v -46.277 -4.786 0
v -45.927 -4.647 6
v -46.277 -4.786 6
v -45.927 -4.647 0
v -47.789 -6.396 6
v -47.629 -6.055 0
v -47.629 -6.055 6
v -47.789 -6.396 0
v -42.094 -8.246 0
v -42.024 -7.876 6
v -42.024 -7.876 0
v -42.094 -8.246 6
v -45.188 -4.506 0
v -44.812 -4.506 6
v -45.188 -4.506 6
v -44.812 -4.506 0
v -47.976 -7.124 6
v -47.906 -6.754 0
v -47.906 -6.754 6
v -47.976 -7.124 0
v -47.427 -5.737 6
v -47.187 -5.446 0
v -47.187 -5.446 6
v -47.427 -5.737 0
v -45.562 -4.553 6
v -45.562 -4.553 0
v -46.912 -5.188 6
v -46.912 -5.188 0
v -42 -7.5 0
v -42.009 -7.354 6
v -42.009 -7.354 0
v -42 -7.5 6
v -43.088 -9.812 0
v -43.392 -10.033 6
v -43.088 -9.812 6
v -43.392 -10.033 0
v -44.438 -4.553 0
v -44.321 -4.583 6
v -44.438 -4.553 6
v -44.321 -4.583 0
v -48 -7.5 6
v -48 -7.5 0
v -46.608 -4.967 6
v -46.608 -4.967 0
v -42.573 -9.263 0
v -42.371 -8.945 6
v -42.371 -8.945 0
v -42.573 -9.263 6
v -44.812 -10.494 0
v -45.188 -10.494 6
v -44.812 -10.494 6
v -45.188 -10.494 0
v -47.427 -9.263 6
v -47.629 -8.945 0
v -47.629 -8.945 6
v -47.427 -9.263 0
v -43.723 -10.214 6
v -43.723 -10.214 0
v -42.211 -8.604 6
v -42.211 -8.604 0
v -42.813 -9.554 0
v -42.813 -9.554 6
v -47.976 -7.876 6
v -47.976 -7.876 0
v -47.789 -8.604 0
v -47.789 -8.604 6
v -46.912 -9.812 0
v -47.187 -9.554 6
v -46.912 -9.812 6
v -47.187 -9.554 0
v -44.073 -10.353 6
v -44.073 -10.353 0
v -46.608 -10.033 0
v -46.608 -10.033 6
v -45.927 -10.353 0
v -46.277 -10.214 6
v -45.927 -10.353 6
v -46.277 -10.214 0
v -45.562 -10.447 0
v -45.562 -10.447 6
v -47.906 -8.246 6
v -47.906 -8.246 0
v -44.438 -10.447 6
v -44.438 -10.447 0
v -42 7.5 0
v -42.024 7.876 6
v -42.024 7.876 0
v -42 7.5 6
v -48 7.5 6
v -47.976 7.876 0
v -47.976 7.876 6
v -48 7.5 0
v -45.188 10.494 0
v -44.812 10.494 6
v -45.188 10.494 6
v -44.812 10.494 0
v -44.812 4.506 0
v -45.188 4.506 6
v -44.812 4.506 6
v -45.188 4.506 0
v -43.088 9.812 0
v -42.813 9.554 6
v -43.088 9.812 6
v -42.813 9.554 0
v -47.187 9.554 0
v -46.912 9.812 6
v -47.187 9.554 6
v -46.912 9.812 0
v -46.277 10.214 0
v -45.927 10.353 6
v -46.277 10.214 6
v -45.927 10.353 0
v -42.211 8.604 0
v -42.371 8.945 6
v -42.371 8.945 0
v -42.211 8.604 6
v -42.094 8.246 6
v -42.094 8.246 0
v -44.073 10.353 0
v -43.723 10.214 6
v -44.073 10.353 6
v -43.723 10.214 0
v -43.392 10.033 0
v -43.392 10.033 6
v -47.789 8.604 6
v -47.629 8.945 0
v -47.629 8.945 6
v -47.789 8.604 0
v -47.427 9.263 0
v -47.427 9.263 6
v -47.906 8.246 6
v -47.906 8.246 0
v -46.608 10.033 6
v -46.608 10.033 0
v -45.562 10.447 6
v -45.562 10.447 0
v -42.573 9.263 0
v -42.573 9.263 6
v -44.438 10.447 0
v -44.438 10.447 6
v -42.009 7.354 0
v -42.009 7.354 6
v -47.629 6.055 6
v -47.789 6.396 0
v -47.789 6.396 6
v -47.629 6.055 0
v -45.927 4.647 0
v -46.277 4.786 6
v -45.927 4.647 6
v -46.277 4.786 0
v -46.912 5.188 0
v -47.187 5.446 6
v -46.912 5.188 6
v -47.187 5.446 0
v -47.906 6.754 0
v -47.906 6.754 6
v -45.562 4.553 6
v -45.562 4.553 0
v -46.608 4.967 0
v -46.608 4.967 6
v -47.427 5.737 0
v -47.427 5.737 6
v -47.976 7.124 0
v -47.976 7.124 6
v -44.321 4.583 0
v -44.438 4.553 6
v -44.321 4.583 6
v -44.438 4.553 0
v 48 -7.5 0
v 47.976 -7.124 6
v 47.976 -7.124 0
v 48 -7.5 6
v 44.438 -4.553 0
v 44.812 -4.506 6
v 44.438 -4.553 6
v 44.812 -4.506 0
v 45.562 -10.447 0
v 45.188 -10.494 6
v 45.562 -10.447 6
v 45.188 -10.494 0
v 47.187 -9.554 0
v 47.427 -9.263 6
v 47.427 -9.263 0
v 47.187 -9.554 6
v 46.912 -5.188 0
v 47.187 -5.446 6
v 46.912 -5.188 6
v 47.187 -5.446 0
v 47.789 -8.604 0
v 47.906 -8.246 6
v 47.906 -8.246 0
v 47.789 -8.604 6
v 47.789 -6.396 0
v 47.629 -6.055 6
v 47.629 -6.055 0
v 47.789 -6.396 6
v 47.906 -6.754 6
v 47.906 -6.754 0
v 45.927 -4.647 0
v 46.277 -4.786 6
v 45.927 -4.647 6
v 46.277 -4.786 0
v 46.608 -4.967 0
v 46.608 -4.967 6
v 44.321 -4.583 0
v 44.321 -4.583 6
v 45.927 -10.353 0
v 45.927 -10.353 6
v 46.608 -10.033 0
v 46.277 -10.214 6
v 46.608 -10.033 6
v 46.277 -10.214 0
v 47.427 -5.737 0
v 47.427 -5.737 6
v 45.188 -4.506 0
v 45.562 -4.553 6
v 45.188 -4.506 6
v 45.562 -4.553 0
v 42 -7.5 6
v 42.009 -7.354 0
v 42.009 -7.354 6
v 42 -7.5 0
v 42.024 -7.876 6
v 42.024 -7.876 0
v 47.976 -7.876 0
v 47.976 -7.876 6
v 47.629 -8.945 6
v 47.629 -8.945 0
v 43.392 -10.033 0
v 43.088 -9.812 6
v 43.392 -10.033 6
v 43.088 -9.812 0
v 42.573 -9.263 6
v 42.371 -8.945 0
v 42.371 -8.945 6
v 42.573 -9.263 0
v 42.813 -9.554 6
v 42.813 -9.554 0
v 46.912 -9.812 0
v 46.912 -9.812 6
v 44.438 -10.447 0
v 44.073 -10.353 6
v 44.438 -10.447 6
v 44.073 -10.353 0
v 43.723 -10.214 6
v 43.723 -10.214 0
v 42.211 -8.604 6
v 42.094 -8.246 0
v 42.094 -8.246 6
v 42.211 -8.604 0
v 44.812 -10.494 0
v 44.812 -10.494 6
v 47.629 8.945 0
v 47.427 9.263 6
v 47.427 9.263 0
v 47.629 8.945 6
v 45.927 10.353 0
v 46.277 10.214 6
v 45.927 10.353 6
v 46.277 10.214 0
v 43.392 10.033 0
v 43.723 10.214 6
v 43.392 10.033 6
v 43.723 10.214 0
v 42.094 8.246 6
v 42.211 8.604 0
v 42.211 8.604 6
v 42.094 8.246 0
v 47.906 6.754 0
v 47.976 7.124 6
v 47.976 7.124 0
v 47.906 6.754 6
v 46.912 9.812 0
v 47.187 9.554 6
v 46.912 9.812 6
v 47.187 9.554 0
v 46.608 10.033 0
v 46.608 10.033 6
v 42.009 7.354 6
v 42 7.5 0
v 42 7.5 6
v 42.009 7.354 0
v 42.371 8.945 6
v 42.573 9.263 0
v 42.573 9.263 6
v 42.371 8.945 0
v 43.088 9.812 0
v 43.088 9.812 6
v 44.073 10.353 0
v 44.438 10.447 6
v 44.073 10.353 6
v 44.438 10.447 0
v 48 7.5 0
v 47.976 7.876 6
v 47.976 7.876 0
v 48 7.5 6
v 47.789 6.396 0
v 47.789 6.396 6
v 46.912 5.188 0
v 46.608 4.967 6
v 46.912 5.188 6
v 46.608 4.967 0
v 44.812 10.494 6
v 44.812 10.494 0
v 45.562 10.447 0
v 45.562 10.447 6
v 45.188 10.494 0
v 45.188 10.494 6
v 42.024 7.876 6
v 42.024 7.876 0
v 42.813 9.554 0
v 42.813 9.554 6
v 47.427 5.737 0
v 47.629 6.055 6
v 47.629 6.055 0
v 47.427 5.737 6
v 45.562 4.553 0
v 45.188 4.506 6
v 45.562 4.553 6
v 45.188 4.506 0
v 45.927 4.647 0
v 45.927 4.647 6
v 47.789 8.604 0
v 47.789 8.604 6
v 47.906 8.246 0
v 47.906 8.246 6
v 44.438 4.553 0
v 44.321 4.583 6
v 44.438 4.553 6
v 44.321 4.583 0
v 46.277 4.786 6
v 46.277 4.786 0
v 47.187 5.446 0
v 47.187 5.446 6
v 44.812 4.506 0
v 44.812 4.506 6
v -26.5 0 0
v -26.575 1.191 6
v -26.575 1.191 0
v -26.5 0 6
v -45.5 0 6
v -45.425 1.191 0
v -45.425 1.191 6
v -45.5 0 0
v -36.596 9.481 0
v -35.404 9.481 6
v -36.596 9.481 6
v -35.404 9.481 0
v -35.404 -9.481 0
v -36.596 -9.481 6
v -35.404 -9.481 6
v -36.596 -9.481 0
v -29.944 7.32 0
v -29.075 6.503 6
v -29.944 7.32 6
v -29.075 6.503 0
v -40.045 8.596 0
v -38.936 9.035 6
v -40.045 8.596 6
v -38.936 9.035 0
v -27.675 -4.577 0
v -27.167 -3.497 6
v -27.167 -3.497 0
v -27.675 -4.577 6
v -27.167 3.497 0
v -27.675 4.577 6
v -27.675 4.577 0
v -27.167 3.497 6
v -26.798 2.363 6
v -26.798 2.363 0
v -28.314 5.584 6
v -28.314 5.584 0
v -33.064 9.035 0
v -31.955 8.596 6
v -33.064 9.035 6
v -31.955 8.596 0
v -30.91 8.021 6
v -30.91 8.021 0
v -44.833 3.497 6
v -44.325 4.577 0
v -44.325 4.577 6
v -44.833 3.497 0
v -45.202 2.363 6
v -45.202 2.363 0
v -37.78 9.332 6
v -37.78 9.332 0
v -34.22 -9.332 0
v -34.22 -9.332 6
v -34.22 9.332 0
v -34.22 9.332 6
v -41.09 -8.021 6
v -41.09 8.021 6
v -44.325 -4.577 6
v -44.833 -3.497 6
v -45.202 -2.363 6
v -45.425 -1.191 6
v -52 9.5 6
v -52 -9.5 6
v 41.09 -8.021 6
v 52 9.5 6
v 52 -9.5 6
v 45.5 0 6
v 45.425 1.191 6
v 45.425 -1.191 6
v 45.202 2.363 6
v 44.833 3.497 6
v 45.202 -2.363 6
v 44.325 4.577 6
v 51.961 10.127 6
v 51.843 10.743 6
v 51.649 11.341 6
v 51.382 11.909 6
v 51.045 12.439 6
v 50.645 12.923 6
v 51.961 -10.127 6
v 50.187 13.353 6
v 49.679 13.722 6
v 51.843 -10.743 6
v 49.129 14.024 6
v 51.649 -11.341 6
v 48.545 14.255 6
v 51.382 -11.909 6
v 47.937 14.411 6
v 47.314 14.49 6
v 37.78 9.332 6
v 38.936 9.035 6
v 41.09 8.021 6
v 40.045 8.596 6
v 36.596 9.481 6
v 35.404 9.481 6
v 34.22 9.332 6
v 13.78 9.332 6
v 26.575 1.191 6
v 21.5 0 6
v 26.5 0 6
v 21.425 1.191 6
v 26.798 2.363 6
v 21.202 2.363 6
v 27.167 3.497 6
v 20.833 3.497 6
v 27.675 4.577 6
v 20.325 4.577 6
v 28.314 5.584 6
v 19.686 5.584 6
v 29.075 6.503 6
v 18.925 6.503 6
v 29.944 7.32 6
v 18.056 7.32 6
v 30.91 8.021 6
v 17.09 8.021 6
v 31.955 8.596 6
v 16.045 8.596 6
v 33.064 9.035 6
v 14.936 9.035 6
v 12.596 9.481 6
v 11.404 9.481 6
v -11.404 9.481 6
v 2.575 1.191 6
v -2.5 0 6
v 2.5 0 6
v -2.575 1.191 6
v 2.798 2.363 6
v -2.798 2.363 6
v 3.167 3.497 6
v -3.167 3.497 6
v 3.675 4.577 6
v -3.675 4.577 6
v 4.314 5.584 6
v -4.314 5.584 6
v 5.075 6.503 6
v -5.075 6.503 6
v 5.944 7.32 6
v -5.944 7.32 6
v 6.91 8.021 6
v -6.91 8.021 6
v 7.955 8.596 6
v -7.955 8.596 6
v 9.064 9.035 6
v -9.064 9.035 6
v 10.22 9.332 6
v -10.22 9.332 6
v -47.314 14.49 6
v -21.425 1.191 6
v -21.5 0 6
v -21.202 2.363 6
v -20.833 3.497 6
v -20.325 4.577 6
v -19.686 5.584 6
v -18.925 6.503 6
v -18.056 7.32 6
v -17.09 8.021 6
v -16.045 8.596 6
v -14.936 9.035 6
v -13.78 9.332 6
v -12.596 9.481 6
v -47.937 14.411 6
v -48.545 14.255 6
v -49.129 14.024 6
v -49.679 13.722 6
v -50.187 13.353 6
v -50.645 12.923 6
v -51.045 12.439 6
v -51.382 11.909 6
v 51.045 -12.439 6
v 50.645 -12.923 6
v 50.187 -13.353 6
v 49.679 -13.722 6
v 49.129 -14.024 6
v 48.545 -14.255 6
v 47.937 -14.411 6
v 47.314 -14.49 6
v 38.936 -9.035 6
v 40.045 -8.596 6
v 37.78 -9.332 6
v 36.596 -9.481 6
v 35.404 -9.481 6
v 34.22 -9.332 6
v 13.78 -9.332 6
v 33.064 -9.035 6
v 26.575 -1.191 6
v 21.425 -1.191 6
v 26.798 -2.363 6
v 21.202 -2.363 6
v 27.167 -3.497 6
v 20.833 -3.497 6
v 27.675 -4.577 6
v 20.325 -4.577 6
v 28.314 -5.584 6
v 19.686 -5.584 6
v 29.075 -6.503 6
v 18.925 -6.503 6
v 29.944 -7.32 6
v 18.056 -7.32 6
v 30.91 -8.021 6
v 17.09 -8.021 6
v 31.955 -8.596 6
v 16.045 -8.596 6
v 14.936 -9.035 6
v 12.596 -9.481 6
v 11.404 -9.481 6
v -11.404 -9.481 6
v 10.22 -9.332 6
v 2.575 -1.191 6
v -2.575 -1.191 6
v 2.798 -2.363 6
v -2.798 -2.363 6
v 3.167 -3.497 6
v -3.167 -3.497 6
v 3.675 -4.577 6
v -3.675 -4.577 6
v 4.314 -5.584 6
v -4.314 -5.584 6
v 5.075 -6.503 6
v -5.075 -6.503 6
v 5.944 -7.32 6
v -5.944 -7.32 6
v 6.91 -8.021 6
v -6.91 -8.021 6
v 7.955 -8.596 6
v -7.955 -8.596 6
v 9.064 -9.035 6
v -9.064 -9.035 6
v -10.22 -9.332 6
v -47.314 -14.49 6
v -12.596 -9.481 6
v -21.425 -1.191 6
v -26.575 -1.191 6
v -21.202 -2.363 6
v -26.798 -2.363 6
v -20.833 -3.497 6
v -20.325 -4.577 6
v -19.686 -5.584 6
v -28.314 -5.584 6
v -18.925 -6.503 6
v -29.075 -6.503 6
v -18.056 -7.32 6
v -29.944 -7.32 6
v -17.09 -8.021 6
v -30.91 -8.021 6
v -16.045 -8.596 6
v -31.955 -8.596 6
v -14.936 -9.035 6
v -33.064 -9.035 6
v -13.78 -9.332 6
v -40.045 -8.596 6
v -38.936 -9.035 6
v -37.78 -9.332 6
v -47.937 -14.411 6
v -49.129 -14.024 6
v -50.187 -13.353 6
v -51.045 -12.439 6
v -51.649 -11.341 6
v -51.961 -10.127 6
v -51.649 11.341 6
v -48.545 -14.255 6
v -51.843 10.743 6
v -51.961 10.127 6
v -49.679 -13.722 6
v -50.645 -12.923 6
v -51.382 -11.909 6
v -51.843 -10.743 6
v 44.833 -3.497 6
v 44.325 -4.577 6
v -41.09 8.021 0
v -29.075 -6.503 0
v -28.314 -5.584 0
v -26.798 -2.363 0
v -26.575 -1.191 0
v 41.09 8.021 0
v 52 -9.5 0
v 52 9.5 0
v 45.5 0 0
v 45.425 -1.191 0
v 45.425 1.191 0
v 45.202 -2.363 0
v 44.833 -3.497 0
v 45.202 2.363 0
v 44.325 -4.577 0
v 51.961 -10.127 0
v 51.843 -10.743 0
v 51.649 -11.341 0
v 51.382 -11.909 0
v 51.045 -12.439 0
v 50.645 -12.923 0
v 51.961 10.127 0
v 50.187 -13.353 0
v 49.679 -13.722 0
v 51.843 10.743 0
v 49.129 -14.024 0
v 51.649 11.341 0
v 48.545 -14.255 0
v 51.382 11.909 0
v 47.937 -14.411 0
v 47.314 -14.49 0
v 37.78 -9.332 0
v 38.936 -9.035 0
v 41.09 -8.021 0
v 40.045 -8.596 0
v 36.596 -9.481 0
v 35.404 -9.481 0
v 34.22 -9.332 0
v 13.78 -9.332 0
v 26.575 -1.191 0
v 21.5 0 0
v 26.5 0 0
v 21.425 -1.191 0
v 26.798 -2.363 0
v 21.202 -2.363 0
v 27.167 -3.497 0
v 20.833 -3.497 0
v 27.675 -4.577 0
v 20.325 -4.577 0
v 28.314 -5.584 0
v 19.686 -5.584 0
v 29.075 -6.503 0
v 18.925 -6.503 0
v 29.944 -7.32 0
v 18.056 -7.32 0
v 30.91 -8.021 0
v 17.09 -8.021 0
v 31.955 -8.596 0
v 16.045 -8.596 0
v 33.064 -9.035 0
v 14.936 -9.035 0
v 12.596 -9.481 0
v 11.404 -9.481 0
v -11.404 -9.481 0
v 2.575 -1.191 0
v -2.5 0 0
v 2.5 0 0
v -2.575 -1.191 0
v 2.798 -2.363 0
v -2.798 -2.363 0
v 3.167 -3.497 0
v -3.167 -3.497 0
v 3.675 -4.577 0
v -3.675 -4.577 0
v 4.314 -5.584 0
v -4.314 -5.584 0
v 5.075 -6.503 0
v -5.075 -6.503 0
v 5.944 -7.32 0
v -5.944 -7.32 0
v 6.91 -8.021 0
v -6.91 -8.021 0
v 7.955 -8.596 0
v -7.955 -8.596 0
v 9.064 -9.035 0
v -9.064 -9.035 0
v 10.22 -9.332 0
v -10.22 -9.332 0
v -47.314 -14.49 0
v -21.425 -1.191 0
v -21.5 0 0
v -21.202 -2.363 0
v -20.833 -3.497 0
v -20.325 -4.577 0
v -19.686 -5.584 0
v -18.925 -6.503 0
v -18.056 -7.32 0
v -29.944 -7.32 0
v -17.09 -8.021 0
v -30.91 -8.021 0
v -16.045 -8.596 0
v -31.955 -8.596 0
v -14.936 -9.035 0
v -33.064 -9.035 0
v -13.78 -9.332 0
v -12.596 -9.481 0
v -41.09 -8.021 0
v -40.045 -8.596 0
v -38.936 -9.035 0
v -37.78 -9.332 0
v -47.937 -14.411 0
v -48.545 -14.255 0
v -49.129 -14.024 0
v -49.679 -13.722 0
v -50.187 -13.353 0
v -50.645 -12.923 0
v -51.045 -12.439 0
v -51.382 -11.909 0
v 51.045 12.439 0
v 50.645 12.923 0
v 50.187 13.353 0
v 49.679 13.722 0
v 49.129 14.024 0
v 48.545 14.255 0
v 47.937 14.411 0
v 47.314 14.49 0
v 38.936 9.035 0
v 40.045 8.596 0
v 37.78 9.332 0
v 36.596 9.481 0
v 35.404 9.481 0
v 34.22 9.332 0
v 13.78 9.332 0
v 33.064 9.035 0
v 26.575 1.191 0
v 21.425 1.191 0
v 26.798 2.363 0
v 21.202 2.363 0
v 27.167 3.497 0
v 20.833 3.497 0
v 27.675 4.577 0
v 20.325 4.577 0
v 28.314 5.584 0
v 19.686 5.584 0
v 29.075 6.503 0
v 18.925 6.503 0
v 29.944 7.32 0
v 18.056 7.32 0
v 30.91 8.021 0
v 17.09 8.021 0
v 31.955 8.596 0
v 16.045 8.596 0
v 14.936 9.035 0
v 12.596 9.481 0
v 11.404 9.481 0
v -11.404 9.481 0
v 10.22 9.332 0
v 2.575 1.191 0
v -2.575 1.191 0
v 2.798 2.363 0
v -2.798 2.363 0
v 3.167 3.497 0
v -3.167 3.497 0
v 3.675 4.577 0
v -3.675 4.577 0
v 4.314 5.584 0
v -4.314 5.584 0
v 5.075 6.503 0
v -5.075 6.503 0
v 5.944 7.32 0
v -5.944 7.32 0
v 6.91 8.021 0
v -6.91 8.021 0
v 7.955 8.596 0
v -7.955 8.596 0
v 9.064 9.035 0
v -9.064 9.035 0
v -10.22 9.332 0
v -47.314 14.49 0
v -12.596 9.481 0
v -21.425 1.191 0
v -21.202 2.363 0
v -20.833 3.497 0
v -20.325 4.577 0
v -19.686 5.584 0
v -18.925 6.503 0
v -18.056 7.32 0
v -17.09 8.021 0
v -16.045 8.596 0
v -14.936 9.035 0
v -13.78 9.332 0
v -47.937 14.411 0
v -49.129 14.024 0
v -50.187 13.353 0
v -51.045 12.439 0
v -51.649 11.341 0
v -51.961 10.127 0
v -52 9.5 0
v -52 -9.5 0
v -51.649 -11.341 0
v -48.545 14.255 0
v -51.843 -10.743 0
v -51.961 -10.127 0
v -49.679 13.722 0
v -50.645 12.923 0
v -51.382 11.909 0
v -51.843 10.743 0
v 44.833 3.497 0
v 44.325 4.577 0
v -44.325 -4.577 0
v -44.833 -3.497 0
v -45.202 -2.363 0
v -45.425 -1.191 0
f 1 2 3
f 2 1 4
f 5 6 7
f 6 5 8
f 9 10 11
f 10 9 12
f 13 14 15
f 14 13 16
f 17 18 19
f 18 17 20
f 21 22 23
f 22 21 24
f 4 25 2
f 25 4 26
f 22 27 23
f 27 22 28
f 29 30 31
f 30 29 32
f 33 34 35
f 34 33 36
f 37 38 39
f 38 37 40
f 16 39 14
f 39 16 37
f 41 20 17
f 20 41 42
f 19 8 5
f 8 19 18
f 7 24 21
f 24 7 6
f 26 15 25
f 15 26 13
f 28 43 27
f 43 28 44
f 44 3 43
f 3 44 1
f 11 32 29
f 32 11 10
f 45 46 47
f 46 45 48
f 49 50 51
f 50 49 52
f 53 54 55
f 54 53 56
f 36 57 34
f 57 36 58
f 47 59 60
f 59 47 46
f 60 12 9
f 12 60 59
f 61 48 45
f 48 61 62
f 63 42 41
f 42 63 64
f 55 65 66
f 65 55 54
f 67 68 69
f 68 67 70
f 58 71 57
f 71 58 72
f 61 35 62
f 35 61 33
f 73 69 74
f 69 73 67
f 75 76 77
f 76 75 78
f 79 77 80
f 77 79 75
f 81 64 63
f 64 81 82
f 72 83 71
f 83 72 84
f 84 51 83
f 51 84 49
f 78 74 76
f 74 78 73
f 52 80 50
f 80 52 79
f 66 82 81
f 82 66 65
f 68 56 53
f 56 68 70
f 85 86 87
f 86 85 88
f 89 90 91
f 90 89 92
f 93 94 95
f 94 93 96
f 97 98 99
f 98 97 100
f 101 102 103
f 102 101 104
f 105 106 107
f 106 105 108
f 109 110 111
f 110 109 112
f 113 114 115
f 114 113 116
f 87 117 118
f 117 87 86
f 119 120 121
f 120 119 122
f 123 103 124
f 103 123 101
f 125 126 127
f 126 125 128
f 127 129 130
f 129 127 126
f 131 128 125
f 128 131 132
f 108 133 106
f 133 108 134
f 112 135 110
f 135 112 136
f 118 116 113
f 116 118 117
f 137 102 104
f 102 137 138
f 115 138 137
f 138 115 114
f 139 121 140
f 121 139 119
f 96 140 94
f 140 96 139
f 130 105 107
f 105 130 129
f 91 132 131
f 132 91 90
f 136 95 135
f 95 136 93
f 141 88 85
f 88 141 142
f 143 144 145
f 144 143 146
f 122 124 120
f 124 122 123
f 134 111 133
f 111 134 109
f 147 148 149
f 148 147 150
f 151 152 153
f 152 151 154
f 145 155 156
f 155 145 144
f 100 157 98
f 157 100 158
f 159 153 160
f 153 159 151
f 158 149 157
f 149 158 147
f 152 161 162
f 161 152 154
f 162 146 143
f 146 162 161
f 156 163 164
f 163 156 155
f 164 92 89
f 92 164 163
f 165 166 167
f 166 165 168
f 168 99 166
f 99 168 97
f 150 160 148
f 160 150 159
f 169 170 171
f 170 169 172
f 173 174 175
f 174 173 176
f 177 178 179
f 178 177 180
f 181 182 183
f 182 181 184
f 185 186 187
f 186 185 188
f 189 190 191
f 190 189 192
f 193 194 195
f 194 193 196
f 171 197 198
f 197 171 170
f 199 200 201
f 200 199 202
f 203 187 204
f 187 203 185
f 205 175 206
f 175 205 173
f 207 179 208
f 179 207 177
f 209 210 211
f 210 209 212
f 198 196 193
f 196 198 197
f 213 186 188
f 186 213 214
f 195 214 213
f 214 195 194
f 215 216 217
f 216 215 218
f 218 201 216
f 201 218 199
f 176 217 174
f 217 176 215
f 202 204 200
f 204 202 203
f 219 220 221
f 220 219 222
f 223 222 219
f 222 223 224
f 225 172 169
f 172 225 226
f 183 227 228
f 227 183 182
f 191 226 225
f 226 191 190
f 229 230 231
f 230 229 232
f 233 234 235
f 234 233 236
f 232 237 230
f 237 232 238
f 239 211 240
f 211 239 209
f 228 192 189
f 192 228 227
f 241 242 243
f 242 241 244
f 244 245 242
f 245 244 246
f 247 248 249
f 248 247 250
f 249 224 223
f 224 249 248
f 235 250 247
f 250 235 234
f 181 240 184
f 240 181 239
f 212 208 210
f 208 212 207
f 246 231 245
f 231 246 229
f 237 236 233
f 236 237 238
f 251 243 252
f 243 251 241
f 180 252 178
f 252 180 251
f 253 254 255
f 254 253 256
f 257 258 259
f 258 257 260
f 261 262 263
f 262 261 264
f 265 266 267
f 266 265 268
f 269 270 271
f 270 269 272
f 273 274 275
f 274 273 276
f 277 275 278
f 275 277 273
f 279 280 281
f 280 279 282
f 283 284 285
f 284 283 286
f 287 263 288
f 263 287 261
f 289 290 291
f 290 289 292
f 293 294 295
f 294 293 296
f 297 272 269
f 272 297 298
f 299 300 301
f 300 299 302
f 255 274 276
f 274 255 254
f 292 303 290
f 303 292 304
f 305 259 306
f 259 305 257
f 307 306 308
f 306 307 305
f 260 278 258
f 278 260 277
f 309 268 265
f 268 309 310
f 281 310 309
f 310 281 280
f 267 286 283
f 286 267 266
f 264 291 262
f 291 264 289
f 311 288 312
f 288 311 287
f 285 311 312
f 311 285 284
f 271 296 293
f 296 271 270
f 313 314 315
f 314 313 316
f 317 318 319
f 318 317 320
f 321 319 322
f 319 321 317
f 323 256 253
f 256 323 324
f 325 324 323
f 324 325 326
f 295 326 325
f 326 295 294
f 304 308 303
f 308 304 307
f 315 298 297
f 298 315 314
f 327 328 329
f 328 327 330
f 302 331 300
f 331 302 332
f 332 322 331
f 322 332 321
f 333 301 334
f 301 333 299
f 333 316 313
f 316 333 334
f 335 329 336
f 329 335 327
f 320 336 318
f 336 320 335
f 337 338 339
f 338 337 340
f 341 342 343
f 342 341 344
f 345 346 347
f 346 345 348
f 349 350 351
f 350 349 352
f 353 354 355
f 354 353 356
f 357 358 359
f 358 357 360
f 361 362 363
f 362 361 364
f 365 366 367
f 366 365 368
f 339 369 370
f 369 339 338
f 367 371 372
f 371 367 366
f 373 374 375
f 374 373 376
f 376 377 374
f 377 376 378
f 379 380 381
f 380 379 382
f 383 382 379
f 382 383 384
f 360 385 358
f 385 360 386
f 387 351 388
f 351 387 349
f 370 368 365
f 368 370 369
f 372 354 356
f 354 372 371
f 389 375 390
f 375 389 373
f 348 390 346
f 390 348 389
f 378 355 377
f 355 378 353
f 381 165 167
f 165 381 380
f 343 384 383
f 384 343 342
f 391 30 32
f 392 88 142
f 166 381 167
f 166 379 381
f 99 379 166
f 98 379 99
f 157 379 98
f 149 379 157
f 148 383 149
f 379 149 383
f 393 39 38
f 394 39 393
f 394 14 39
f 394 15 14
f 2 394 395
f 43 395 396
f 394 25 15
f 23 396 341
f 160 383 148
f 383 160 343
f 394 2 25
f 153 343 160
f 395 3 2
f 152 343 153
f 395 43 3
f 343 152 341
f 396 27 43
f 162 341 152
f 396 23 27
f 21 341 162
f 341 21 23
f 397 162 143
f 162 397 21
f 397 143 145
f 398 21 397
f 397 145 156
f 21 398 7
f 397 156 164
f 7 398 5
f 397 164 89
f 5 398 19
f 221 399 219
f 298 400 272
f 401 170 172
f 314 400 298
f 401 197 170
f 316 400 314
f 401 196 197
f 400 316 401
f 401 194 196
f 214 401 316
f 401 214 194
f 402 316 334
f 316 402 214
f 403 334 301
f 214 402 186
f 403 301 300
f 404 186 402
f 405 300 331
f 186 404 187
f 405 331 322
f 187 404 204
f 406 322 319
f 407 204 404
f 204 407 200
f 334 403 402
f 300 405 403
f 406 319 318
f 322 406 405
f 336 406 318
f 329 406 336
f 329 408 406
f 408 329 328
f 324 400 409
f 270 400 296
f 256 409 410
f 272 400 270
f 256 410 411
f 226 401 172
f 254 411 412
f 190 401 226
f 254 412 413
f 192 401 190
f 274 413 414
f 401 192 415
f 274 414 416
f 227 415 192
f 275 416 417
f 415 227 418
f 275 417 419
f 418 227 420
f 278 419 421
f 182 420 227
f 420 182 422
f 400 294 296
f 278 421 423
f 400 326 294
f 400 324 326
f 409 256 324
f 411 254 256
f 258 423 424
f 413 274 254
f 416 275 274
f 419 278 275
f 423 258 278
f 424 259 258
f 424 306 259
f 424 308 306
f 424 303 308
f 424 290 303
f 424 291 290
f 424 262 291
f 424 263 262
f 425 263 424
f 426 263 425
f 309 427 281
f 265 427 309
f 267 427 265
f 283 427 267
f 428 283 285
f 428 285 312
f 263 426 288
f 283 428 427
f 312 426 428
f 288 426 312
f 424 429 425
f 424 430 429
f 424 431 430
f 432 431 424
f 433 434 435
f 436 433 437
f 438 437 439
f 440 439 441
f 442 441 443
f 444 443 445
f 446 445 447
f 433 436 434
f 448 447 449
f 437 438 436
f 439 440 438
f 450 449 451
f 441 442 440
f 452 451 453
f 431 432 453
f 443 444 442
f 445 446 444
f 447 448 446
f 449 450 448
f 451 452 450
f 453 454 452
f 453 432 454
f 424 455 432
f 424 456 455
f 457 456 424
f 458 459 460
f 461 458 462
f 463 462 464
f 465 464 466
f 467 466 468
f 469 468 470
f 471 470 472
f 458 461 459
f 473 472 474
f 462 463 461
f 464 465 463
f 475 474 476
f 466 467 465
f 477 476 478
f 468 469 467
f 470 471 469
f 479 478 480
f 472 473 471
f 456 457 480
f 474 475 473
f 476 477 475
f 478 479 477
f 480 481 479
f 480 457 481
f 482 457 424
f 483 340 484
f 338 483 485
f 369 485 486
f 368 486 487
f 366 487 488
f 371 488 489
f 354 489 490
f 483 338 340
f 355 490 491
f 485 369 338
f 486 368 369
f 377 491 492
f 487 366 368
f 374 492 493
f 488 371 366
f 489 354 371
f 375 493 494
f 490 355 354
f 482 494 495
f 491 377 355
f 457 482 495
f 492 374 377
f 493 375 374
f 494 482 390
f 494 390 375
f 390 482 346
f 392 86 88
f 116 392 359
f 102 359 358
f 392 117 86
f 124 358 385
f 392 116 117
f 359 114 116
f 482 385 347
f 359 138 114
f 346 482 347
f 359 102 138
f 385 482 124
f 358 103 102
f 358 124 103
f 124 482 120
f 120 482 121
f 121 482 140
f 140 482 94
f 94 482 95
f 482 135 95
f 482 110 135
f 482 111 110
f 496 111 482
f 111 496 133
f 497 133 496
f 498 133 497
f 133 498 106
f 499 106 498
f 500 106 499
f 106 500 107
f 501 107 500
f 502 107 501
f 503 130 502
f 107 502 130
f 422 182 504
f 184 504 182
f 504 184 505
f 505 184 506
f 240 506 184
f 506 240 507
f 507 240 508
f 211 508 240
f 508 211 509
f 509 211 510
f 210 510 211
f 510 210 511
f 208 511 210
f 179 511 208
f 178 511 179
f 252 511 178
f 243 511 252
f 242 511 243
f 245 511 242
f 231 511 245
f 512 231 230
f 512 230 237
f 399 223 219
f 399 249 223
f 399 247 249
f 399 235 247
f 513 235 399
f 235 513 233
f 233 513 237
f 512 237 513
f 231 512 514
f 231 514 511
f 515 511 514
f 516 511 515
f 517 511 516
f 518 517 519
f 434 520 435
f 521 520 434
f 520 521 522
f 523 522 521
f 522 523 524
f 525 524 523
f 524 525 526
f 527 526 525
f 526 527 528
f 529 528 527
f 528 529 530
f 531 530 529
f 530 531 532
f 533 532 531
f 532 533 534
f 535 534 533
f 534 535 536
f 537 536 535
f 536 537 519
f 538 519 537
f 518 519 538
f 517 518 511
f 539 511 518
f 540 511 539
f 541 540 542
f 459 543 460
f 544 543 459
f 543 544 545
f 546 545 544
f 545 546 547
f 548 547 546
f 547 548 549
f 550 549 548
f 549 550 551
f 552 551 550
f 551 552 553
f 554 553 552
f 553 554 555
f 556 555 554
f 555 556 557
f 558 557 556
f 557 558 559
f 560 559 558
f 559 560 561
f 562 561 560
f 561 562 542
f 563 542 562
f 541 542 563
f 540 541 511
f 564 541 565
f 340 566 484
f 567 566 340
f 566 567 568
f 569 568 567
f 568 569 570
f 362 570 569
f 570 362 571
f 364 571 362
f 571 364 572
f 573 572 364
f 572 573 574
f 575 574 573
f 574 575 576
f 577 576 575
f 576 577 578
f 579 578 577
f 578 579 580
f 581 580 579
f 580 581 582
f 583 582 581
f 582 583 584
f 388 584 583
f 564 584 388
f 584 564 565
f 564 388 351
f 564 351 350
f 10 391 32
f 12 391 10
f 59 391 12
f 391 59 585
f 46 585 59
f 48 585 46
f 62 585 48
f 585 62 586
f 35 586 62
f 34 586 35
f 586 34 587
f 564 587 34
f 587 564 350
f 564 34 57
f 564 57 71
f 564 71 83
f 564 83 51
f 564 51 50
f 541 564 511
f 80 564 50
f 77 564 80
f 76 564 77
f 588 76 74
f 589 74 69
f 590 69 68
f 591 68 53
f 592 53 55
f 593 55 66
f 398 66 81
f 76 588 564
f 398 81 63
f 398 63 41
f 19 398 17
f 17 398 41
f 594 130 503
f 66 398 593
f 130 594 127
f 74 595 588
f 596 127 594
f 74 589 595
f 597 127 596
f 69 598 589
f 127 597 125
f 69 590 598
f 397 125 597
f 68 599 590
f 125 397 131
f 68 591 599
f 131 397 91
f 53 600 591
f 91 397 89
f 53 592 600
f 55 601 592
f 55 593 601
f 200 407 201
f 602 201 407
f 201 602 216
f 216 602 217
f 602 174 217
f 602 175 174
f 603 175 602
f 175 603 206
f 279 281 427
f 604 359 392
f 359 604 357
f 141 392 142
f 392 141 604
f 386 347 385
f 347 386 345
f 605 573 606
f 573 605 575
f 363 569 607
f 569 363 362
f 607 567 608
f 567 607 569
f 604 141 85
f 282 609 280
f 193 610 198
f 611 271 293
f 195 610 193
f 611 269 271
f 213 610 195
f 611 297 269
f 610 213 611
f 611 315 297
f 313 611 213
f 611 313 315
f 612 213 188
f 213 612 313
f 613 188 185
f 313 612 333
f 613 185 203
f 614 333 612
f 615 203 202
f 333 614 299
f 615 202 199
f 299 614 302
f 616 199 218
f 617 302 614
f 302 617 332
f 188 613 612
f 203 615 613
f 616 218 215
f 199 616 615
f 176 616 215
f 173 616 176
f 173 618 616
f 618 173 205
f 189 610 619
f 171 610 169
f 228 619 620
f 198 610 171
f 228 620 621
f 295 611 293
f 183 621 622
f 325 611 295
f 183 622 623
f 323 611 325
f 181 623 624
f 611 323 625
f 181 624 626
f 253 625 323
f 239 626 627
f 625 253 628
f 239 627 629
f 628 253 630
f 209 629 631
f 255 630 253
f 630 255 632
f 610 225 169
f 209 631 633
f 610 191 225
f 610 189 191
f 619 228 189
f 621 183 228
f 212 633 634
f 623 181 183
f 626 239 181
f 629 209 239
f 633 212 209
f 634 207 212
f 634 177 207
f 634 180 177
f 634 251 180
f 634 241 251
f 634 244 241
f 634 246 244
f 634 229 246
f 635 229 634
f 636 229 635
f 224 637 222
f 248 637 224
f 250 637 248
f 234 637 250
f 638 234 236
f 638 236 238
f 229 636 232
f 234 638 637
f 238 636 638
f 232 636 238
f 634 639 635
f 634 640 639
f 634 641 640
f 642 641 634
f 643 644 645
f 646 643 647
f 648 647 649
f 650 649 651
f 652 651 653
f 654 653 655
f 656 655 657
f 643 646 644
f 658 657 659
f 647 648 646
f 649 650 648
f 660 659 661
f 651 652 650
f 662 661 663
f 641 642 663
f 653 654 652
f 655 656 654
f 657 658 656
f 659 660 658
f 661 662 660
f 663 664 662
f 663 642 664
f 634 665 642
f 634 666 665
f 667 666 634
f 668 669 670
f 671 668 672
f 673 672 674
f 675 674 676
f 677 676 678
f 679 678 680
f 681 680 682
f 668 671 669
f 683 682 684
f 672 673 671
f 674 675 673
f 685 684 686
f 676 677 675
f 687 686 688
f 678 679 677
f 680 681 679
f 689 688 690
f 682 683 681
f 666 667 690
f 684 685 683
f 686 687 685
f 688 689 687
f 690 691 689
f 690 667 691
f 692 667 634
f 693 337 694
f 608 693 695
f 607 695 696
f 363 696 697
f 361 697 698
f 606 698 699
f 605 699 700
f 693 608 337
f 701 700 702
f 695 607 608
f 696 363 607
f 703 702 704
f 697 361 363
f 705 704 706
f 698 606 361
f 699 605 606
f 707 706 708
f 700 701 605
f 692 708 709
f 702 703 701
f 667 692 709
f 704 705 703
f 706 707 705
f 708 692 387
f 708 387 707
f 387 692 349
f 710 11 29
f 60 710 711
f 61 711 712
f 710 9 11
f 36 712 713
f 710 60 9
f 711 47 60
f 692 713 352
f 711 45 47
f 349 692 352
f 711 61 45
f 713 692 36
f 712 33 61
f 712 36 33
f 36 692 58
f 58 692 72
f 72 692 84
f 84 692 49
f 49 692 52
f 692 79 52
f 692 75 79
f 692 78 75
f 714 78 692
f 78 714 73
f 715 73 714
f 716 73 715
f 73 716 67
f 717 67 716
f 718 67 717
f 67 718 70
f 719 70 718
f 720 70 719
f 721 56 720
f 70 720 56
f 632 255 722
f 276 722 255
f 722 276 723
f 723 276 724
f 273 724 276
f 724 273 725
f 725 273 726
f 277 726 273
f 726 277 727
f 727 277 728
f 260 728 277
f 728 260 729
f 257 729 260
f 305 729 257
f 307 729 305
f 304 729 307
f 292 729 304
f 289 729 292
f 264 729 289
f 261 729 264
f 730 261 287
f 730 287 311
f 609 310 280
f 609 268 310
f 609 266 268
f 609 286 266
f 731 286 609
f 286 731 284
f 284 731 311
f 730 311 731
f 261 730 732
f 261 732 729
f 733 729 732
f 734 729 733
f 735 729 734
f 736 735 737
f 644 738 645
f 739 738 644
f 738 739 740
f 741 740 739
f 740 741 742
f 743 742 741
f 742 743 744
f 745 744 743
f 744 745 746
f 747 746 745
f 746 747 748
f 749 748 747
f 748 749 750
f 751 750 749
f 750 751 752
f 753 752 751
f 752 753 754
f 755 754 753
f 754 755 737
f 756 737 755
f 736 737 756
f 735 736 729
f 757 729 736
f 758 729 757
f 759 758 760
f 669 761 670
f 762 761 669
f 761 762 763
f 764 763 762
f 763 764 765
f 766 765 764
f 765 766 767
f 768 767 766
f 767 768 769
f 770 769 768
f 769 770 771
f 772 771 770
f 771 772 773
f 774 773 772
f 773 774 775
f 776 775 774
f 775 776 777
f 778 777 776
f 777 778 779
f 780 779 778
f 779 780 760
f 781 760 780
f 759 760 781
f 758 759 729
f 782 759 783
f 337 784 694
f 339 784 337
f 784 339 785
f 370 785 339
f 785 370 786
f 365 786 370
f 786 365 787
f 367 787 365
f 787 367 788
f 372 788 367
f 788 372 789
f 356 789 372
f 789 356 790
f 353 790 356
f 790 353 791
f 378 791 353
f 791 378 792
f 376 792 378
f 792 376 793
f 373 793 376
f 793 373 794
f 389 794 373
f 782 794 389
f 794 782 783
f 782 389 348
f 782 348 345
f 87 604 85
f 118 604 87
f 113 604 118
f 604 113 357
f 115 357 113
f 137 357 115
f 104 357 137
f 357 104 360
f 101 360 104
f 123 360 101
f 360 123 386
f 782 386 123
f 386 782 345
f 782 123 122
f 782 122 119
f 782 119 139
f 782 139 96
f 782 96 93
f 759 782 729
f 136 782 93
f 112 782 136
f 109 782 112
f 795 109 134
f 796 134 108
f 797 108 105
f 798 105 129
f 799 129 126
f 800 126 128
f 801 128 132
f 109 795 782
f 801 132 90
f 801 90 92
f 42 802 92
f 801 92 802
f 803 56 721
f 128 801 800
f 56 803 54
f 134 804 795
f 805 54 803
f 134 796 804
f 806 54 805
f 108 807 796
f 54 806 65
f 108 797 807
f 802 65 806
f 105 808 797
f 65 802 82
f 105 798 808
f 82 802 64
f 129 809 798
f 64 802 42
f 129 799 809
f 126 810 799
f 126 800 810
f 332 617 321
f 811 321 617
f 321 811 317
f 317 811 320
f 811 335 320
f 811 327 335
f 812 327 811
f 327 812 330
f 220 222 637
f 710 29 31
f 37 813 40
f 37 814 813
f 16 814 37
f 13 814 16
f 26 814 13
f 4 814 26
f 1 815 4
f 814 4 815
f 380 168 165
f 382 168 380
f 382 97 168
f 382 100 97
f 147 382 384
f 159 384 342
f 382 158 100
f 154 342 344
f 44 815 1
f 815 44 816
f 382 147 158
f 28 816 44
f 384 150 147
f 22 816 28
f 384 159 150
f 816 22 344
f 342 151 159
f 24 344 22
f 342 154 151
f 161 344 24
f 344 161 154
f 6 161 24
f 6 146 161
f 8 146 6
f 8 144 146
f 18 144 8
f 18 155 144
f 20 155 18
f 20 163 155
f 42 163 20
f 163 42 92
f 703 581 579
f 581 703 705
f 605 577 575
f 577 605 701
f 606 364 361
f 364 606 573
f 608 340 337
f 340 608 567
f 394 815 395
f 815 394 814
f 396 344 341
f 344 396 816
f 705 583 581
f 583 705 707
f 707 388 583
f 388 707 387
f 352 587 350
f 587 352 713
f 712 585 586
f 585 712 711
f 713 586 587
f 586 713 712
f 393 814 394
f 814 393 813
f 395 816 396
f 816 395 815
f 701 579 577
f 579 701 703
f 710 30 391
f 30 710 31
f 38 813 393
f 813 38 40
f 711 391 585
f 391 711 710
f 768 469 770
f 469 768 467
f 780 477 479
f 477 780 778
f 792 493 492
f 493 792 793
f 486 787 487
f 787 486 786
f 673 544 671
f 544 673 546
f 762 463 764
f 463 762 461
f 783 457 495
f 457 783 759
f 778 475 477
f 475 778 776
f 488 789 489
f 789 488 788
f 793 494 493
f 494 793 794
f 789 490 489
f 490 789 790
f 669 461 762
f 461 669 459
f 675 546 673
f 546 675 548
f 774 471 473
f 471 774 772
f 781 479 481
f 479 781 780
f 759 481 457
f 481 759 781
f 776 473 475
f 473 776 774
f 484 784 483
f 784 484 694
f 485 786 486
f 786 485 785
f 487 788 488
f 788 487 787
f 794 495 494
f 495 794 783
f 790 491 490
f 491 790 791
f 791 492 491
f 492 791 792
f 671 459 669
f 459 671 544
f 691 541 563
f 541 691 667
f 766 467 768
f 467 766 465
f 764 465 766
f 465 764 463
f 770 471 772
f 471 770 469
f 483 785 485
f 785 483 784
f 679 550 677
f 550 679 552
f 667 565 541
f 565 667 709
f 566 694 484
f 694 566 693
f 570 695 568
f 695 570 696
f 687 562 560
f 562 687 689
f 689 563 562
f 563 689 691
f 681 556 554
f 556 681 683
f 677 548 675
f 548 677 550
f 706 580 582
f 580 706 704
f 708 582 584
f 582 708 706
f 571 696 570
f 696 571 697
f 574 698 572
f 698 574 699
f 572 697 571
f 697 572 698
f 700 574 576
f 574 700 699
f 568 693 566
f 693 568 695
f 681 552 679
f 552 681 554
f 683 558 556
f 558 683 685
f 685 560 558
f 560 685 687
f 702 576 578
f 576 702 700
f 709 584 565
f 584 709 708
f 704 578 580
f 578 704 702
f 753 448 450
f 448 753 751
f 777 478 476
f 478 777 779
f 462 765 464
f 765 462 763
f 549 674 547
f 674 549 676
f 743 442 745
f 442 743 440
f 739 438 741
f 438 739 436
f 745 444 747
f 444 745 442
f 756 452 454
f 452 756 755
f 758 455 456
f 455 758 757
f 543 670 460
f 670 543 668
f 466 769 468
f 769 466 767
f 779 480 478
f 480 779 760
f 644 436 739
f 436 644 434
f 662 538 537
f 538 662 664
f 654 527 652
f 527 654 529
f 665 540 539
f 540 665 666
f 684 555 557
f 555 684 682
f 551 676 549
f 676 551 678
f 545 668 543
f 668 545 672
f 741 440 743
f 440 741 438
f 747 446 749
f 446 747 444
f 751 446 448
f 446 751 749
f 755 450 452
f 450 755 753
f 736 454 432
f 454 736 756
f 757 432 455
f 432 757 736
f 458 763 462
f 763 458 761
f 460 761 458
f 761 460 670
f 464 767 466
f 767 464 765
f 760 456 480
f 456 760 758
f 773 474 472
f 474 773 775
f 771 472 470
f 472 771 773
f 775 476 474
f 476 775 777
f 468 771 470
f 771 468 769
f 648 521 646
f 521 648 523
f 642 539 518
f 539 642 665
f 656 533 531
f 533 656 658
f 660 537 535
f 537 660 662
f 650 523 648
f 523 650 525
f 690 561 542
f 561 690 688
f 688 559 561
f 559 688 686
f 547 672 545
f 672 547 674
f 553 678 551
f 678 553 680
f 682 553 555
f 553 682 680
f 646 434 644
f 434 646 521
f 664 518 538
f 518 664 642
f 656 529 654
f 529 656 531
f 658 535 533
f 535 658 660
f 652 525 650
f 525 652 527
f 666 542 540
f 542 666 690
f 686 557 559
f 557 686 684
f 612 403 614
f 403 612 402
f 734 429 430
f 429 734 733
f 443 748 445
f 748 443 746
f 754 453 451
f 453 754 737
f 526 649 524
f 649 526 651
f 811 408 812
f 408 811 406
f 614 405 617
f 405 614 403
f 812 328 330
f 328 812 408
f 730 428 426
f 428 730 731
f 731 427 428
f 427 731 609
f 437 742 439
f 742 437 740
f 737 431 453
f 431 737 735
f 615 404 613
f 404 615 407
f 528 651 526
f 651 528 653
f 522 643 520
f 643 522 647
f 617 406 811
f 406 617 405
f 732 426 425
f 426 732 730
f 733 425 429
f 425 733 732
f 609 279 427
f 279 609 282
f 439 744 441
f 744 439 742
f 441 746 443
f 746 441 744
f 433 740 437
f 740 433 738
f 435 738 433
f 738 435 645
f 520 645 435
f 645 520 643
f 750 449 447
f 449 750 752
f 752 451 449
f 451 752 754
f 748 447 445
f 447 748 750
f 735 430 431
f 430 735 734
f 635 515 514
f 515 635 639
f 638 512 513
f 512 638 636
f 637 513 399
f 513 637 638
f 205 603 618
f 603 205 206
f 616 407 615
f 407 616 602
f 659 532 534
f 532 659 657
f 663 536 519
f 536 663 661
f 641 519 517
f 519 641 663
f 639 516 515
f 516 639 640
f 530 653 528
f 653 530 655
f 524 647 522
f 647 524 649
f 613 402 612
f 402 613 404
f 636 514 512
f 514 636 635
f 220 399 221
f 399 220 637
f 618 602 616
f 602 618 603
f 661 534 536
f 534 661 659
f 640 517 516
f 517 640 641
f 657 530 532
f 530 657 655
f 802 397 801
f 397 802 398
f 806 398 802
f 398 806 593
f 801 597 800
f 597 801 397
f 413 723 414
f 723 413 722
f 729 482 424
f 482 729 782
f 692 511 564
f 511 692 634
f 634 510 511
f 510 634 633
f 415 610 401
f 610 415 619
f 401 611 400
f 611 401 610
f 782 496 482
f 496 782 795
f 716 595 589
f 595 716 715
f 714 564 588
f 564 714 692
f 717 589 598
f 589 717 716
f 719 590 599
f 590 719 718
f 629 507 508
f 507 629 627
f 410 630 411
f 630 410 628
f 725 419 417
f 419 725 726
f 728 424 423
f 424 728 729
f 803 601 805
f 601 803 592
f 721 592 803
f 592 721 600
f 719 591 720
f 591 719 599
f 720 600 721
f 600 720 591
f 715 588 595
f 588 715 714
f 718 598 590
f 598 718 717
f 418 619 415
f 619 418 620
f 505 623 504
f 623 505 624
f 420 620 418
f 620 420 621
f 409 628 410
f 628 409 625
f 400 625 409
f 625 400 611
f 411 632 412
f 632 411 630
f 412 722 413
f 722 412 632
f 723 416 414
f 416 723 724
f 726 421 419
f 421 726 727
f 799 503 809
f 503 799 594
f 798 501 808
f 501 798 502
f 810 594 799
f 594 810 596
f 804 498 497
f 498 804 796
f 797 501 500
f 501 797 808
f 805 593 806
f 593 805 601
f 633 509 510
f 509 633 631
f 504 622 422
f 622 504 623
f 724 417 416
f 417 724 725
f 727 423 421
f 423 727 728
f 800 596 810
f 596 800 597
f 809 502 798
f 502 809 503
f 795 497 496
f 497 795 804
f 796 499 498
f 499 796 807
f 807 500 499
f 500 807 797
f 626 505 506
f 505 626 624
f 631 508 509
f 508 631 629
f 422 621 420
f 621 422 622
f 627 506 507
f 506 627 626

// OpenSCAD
$fn = 50;


difference() {
	union() {
		hull() {
			translate(v = [-47.0000000000, 9.5000000000, 0]) {
				cylinder(h = 6, r = 5);
			}
			translate(v = [47.0000000000, 9.5000000000, 0]) {
				cylinder(h = 6, r = 5);
			}
			translate(v = [-47.0000000000, -9.5000000000, 0]) {
				cylinder(h = 6, r = 5);
			}
			translate(v = [47.0000000000, -9.5000000000, 0]) {
				cylinder(h = 6, r = 5);
			}
		}
	}
	union() {
		#translate(v = [-45.0000000000, -7.5000000000, -100.0000000000]) {
			cylinder(h = 200, r = 3.0000000000);
		}
		#translate(v = [-45.0000000000, 7.5000000000, -100.0000000000]) {
			cylinder(h = 200, r = 3.0000000000);
		}
		#translate(v = [45.0000000000, -7.5000000000, -100.0000000000]) {
			cylinder(h = 200, r = 3.0000000000);
		}
		#translate(v = [45.0000000000, 7.5000000000, -100.0000000000]) {
			cylinder(h = 200, r = 3.0000000000);
		}
		#translate(v = [-36.0000000000, 0, 0]) {
			cylinder(h = 6, r = 9.5000000000);
		}
		#translate(v = [-12.0000000000, 0, 0]) {
			cylinder(h = 6, r = 9.5000000000);
		}
		#translate(v = [12.0000000000, 0, 0]) {
			cylinder(h = 6, r = 9.5000000000);
		}
		#translate(v = [36.0000000000, 0, 0]) {
			cylinder(h = 6, r = 9.5000000000);
		}
	}
}
